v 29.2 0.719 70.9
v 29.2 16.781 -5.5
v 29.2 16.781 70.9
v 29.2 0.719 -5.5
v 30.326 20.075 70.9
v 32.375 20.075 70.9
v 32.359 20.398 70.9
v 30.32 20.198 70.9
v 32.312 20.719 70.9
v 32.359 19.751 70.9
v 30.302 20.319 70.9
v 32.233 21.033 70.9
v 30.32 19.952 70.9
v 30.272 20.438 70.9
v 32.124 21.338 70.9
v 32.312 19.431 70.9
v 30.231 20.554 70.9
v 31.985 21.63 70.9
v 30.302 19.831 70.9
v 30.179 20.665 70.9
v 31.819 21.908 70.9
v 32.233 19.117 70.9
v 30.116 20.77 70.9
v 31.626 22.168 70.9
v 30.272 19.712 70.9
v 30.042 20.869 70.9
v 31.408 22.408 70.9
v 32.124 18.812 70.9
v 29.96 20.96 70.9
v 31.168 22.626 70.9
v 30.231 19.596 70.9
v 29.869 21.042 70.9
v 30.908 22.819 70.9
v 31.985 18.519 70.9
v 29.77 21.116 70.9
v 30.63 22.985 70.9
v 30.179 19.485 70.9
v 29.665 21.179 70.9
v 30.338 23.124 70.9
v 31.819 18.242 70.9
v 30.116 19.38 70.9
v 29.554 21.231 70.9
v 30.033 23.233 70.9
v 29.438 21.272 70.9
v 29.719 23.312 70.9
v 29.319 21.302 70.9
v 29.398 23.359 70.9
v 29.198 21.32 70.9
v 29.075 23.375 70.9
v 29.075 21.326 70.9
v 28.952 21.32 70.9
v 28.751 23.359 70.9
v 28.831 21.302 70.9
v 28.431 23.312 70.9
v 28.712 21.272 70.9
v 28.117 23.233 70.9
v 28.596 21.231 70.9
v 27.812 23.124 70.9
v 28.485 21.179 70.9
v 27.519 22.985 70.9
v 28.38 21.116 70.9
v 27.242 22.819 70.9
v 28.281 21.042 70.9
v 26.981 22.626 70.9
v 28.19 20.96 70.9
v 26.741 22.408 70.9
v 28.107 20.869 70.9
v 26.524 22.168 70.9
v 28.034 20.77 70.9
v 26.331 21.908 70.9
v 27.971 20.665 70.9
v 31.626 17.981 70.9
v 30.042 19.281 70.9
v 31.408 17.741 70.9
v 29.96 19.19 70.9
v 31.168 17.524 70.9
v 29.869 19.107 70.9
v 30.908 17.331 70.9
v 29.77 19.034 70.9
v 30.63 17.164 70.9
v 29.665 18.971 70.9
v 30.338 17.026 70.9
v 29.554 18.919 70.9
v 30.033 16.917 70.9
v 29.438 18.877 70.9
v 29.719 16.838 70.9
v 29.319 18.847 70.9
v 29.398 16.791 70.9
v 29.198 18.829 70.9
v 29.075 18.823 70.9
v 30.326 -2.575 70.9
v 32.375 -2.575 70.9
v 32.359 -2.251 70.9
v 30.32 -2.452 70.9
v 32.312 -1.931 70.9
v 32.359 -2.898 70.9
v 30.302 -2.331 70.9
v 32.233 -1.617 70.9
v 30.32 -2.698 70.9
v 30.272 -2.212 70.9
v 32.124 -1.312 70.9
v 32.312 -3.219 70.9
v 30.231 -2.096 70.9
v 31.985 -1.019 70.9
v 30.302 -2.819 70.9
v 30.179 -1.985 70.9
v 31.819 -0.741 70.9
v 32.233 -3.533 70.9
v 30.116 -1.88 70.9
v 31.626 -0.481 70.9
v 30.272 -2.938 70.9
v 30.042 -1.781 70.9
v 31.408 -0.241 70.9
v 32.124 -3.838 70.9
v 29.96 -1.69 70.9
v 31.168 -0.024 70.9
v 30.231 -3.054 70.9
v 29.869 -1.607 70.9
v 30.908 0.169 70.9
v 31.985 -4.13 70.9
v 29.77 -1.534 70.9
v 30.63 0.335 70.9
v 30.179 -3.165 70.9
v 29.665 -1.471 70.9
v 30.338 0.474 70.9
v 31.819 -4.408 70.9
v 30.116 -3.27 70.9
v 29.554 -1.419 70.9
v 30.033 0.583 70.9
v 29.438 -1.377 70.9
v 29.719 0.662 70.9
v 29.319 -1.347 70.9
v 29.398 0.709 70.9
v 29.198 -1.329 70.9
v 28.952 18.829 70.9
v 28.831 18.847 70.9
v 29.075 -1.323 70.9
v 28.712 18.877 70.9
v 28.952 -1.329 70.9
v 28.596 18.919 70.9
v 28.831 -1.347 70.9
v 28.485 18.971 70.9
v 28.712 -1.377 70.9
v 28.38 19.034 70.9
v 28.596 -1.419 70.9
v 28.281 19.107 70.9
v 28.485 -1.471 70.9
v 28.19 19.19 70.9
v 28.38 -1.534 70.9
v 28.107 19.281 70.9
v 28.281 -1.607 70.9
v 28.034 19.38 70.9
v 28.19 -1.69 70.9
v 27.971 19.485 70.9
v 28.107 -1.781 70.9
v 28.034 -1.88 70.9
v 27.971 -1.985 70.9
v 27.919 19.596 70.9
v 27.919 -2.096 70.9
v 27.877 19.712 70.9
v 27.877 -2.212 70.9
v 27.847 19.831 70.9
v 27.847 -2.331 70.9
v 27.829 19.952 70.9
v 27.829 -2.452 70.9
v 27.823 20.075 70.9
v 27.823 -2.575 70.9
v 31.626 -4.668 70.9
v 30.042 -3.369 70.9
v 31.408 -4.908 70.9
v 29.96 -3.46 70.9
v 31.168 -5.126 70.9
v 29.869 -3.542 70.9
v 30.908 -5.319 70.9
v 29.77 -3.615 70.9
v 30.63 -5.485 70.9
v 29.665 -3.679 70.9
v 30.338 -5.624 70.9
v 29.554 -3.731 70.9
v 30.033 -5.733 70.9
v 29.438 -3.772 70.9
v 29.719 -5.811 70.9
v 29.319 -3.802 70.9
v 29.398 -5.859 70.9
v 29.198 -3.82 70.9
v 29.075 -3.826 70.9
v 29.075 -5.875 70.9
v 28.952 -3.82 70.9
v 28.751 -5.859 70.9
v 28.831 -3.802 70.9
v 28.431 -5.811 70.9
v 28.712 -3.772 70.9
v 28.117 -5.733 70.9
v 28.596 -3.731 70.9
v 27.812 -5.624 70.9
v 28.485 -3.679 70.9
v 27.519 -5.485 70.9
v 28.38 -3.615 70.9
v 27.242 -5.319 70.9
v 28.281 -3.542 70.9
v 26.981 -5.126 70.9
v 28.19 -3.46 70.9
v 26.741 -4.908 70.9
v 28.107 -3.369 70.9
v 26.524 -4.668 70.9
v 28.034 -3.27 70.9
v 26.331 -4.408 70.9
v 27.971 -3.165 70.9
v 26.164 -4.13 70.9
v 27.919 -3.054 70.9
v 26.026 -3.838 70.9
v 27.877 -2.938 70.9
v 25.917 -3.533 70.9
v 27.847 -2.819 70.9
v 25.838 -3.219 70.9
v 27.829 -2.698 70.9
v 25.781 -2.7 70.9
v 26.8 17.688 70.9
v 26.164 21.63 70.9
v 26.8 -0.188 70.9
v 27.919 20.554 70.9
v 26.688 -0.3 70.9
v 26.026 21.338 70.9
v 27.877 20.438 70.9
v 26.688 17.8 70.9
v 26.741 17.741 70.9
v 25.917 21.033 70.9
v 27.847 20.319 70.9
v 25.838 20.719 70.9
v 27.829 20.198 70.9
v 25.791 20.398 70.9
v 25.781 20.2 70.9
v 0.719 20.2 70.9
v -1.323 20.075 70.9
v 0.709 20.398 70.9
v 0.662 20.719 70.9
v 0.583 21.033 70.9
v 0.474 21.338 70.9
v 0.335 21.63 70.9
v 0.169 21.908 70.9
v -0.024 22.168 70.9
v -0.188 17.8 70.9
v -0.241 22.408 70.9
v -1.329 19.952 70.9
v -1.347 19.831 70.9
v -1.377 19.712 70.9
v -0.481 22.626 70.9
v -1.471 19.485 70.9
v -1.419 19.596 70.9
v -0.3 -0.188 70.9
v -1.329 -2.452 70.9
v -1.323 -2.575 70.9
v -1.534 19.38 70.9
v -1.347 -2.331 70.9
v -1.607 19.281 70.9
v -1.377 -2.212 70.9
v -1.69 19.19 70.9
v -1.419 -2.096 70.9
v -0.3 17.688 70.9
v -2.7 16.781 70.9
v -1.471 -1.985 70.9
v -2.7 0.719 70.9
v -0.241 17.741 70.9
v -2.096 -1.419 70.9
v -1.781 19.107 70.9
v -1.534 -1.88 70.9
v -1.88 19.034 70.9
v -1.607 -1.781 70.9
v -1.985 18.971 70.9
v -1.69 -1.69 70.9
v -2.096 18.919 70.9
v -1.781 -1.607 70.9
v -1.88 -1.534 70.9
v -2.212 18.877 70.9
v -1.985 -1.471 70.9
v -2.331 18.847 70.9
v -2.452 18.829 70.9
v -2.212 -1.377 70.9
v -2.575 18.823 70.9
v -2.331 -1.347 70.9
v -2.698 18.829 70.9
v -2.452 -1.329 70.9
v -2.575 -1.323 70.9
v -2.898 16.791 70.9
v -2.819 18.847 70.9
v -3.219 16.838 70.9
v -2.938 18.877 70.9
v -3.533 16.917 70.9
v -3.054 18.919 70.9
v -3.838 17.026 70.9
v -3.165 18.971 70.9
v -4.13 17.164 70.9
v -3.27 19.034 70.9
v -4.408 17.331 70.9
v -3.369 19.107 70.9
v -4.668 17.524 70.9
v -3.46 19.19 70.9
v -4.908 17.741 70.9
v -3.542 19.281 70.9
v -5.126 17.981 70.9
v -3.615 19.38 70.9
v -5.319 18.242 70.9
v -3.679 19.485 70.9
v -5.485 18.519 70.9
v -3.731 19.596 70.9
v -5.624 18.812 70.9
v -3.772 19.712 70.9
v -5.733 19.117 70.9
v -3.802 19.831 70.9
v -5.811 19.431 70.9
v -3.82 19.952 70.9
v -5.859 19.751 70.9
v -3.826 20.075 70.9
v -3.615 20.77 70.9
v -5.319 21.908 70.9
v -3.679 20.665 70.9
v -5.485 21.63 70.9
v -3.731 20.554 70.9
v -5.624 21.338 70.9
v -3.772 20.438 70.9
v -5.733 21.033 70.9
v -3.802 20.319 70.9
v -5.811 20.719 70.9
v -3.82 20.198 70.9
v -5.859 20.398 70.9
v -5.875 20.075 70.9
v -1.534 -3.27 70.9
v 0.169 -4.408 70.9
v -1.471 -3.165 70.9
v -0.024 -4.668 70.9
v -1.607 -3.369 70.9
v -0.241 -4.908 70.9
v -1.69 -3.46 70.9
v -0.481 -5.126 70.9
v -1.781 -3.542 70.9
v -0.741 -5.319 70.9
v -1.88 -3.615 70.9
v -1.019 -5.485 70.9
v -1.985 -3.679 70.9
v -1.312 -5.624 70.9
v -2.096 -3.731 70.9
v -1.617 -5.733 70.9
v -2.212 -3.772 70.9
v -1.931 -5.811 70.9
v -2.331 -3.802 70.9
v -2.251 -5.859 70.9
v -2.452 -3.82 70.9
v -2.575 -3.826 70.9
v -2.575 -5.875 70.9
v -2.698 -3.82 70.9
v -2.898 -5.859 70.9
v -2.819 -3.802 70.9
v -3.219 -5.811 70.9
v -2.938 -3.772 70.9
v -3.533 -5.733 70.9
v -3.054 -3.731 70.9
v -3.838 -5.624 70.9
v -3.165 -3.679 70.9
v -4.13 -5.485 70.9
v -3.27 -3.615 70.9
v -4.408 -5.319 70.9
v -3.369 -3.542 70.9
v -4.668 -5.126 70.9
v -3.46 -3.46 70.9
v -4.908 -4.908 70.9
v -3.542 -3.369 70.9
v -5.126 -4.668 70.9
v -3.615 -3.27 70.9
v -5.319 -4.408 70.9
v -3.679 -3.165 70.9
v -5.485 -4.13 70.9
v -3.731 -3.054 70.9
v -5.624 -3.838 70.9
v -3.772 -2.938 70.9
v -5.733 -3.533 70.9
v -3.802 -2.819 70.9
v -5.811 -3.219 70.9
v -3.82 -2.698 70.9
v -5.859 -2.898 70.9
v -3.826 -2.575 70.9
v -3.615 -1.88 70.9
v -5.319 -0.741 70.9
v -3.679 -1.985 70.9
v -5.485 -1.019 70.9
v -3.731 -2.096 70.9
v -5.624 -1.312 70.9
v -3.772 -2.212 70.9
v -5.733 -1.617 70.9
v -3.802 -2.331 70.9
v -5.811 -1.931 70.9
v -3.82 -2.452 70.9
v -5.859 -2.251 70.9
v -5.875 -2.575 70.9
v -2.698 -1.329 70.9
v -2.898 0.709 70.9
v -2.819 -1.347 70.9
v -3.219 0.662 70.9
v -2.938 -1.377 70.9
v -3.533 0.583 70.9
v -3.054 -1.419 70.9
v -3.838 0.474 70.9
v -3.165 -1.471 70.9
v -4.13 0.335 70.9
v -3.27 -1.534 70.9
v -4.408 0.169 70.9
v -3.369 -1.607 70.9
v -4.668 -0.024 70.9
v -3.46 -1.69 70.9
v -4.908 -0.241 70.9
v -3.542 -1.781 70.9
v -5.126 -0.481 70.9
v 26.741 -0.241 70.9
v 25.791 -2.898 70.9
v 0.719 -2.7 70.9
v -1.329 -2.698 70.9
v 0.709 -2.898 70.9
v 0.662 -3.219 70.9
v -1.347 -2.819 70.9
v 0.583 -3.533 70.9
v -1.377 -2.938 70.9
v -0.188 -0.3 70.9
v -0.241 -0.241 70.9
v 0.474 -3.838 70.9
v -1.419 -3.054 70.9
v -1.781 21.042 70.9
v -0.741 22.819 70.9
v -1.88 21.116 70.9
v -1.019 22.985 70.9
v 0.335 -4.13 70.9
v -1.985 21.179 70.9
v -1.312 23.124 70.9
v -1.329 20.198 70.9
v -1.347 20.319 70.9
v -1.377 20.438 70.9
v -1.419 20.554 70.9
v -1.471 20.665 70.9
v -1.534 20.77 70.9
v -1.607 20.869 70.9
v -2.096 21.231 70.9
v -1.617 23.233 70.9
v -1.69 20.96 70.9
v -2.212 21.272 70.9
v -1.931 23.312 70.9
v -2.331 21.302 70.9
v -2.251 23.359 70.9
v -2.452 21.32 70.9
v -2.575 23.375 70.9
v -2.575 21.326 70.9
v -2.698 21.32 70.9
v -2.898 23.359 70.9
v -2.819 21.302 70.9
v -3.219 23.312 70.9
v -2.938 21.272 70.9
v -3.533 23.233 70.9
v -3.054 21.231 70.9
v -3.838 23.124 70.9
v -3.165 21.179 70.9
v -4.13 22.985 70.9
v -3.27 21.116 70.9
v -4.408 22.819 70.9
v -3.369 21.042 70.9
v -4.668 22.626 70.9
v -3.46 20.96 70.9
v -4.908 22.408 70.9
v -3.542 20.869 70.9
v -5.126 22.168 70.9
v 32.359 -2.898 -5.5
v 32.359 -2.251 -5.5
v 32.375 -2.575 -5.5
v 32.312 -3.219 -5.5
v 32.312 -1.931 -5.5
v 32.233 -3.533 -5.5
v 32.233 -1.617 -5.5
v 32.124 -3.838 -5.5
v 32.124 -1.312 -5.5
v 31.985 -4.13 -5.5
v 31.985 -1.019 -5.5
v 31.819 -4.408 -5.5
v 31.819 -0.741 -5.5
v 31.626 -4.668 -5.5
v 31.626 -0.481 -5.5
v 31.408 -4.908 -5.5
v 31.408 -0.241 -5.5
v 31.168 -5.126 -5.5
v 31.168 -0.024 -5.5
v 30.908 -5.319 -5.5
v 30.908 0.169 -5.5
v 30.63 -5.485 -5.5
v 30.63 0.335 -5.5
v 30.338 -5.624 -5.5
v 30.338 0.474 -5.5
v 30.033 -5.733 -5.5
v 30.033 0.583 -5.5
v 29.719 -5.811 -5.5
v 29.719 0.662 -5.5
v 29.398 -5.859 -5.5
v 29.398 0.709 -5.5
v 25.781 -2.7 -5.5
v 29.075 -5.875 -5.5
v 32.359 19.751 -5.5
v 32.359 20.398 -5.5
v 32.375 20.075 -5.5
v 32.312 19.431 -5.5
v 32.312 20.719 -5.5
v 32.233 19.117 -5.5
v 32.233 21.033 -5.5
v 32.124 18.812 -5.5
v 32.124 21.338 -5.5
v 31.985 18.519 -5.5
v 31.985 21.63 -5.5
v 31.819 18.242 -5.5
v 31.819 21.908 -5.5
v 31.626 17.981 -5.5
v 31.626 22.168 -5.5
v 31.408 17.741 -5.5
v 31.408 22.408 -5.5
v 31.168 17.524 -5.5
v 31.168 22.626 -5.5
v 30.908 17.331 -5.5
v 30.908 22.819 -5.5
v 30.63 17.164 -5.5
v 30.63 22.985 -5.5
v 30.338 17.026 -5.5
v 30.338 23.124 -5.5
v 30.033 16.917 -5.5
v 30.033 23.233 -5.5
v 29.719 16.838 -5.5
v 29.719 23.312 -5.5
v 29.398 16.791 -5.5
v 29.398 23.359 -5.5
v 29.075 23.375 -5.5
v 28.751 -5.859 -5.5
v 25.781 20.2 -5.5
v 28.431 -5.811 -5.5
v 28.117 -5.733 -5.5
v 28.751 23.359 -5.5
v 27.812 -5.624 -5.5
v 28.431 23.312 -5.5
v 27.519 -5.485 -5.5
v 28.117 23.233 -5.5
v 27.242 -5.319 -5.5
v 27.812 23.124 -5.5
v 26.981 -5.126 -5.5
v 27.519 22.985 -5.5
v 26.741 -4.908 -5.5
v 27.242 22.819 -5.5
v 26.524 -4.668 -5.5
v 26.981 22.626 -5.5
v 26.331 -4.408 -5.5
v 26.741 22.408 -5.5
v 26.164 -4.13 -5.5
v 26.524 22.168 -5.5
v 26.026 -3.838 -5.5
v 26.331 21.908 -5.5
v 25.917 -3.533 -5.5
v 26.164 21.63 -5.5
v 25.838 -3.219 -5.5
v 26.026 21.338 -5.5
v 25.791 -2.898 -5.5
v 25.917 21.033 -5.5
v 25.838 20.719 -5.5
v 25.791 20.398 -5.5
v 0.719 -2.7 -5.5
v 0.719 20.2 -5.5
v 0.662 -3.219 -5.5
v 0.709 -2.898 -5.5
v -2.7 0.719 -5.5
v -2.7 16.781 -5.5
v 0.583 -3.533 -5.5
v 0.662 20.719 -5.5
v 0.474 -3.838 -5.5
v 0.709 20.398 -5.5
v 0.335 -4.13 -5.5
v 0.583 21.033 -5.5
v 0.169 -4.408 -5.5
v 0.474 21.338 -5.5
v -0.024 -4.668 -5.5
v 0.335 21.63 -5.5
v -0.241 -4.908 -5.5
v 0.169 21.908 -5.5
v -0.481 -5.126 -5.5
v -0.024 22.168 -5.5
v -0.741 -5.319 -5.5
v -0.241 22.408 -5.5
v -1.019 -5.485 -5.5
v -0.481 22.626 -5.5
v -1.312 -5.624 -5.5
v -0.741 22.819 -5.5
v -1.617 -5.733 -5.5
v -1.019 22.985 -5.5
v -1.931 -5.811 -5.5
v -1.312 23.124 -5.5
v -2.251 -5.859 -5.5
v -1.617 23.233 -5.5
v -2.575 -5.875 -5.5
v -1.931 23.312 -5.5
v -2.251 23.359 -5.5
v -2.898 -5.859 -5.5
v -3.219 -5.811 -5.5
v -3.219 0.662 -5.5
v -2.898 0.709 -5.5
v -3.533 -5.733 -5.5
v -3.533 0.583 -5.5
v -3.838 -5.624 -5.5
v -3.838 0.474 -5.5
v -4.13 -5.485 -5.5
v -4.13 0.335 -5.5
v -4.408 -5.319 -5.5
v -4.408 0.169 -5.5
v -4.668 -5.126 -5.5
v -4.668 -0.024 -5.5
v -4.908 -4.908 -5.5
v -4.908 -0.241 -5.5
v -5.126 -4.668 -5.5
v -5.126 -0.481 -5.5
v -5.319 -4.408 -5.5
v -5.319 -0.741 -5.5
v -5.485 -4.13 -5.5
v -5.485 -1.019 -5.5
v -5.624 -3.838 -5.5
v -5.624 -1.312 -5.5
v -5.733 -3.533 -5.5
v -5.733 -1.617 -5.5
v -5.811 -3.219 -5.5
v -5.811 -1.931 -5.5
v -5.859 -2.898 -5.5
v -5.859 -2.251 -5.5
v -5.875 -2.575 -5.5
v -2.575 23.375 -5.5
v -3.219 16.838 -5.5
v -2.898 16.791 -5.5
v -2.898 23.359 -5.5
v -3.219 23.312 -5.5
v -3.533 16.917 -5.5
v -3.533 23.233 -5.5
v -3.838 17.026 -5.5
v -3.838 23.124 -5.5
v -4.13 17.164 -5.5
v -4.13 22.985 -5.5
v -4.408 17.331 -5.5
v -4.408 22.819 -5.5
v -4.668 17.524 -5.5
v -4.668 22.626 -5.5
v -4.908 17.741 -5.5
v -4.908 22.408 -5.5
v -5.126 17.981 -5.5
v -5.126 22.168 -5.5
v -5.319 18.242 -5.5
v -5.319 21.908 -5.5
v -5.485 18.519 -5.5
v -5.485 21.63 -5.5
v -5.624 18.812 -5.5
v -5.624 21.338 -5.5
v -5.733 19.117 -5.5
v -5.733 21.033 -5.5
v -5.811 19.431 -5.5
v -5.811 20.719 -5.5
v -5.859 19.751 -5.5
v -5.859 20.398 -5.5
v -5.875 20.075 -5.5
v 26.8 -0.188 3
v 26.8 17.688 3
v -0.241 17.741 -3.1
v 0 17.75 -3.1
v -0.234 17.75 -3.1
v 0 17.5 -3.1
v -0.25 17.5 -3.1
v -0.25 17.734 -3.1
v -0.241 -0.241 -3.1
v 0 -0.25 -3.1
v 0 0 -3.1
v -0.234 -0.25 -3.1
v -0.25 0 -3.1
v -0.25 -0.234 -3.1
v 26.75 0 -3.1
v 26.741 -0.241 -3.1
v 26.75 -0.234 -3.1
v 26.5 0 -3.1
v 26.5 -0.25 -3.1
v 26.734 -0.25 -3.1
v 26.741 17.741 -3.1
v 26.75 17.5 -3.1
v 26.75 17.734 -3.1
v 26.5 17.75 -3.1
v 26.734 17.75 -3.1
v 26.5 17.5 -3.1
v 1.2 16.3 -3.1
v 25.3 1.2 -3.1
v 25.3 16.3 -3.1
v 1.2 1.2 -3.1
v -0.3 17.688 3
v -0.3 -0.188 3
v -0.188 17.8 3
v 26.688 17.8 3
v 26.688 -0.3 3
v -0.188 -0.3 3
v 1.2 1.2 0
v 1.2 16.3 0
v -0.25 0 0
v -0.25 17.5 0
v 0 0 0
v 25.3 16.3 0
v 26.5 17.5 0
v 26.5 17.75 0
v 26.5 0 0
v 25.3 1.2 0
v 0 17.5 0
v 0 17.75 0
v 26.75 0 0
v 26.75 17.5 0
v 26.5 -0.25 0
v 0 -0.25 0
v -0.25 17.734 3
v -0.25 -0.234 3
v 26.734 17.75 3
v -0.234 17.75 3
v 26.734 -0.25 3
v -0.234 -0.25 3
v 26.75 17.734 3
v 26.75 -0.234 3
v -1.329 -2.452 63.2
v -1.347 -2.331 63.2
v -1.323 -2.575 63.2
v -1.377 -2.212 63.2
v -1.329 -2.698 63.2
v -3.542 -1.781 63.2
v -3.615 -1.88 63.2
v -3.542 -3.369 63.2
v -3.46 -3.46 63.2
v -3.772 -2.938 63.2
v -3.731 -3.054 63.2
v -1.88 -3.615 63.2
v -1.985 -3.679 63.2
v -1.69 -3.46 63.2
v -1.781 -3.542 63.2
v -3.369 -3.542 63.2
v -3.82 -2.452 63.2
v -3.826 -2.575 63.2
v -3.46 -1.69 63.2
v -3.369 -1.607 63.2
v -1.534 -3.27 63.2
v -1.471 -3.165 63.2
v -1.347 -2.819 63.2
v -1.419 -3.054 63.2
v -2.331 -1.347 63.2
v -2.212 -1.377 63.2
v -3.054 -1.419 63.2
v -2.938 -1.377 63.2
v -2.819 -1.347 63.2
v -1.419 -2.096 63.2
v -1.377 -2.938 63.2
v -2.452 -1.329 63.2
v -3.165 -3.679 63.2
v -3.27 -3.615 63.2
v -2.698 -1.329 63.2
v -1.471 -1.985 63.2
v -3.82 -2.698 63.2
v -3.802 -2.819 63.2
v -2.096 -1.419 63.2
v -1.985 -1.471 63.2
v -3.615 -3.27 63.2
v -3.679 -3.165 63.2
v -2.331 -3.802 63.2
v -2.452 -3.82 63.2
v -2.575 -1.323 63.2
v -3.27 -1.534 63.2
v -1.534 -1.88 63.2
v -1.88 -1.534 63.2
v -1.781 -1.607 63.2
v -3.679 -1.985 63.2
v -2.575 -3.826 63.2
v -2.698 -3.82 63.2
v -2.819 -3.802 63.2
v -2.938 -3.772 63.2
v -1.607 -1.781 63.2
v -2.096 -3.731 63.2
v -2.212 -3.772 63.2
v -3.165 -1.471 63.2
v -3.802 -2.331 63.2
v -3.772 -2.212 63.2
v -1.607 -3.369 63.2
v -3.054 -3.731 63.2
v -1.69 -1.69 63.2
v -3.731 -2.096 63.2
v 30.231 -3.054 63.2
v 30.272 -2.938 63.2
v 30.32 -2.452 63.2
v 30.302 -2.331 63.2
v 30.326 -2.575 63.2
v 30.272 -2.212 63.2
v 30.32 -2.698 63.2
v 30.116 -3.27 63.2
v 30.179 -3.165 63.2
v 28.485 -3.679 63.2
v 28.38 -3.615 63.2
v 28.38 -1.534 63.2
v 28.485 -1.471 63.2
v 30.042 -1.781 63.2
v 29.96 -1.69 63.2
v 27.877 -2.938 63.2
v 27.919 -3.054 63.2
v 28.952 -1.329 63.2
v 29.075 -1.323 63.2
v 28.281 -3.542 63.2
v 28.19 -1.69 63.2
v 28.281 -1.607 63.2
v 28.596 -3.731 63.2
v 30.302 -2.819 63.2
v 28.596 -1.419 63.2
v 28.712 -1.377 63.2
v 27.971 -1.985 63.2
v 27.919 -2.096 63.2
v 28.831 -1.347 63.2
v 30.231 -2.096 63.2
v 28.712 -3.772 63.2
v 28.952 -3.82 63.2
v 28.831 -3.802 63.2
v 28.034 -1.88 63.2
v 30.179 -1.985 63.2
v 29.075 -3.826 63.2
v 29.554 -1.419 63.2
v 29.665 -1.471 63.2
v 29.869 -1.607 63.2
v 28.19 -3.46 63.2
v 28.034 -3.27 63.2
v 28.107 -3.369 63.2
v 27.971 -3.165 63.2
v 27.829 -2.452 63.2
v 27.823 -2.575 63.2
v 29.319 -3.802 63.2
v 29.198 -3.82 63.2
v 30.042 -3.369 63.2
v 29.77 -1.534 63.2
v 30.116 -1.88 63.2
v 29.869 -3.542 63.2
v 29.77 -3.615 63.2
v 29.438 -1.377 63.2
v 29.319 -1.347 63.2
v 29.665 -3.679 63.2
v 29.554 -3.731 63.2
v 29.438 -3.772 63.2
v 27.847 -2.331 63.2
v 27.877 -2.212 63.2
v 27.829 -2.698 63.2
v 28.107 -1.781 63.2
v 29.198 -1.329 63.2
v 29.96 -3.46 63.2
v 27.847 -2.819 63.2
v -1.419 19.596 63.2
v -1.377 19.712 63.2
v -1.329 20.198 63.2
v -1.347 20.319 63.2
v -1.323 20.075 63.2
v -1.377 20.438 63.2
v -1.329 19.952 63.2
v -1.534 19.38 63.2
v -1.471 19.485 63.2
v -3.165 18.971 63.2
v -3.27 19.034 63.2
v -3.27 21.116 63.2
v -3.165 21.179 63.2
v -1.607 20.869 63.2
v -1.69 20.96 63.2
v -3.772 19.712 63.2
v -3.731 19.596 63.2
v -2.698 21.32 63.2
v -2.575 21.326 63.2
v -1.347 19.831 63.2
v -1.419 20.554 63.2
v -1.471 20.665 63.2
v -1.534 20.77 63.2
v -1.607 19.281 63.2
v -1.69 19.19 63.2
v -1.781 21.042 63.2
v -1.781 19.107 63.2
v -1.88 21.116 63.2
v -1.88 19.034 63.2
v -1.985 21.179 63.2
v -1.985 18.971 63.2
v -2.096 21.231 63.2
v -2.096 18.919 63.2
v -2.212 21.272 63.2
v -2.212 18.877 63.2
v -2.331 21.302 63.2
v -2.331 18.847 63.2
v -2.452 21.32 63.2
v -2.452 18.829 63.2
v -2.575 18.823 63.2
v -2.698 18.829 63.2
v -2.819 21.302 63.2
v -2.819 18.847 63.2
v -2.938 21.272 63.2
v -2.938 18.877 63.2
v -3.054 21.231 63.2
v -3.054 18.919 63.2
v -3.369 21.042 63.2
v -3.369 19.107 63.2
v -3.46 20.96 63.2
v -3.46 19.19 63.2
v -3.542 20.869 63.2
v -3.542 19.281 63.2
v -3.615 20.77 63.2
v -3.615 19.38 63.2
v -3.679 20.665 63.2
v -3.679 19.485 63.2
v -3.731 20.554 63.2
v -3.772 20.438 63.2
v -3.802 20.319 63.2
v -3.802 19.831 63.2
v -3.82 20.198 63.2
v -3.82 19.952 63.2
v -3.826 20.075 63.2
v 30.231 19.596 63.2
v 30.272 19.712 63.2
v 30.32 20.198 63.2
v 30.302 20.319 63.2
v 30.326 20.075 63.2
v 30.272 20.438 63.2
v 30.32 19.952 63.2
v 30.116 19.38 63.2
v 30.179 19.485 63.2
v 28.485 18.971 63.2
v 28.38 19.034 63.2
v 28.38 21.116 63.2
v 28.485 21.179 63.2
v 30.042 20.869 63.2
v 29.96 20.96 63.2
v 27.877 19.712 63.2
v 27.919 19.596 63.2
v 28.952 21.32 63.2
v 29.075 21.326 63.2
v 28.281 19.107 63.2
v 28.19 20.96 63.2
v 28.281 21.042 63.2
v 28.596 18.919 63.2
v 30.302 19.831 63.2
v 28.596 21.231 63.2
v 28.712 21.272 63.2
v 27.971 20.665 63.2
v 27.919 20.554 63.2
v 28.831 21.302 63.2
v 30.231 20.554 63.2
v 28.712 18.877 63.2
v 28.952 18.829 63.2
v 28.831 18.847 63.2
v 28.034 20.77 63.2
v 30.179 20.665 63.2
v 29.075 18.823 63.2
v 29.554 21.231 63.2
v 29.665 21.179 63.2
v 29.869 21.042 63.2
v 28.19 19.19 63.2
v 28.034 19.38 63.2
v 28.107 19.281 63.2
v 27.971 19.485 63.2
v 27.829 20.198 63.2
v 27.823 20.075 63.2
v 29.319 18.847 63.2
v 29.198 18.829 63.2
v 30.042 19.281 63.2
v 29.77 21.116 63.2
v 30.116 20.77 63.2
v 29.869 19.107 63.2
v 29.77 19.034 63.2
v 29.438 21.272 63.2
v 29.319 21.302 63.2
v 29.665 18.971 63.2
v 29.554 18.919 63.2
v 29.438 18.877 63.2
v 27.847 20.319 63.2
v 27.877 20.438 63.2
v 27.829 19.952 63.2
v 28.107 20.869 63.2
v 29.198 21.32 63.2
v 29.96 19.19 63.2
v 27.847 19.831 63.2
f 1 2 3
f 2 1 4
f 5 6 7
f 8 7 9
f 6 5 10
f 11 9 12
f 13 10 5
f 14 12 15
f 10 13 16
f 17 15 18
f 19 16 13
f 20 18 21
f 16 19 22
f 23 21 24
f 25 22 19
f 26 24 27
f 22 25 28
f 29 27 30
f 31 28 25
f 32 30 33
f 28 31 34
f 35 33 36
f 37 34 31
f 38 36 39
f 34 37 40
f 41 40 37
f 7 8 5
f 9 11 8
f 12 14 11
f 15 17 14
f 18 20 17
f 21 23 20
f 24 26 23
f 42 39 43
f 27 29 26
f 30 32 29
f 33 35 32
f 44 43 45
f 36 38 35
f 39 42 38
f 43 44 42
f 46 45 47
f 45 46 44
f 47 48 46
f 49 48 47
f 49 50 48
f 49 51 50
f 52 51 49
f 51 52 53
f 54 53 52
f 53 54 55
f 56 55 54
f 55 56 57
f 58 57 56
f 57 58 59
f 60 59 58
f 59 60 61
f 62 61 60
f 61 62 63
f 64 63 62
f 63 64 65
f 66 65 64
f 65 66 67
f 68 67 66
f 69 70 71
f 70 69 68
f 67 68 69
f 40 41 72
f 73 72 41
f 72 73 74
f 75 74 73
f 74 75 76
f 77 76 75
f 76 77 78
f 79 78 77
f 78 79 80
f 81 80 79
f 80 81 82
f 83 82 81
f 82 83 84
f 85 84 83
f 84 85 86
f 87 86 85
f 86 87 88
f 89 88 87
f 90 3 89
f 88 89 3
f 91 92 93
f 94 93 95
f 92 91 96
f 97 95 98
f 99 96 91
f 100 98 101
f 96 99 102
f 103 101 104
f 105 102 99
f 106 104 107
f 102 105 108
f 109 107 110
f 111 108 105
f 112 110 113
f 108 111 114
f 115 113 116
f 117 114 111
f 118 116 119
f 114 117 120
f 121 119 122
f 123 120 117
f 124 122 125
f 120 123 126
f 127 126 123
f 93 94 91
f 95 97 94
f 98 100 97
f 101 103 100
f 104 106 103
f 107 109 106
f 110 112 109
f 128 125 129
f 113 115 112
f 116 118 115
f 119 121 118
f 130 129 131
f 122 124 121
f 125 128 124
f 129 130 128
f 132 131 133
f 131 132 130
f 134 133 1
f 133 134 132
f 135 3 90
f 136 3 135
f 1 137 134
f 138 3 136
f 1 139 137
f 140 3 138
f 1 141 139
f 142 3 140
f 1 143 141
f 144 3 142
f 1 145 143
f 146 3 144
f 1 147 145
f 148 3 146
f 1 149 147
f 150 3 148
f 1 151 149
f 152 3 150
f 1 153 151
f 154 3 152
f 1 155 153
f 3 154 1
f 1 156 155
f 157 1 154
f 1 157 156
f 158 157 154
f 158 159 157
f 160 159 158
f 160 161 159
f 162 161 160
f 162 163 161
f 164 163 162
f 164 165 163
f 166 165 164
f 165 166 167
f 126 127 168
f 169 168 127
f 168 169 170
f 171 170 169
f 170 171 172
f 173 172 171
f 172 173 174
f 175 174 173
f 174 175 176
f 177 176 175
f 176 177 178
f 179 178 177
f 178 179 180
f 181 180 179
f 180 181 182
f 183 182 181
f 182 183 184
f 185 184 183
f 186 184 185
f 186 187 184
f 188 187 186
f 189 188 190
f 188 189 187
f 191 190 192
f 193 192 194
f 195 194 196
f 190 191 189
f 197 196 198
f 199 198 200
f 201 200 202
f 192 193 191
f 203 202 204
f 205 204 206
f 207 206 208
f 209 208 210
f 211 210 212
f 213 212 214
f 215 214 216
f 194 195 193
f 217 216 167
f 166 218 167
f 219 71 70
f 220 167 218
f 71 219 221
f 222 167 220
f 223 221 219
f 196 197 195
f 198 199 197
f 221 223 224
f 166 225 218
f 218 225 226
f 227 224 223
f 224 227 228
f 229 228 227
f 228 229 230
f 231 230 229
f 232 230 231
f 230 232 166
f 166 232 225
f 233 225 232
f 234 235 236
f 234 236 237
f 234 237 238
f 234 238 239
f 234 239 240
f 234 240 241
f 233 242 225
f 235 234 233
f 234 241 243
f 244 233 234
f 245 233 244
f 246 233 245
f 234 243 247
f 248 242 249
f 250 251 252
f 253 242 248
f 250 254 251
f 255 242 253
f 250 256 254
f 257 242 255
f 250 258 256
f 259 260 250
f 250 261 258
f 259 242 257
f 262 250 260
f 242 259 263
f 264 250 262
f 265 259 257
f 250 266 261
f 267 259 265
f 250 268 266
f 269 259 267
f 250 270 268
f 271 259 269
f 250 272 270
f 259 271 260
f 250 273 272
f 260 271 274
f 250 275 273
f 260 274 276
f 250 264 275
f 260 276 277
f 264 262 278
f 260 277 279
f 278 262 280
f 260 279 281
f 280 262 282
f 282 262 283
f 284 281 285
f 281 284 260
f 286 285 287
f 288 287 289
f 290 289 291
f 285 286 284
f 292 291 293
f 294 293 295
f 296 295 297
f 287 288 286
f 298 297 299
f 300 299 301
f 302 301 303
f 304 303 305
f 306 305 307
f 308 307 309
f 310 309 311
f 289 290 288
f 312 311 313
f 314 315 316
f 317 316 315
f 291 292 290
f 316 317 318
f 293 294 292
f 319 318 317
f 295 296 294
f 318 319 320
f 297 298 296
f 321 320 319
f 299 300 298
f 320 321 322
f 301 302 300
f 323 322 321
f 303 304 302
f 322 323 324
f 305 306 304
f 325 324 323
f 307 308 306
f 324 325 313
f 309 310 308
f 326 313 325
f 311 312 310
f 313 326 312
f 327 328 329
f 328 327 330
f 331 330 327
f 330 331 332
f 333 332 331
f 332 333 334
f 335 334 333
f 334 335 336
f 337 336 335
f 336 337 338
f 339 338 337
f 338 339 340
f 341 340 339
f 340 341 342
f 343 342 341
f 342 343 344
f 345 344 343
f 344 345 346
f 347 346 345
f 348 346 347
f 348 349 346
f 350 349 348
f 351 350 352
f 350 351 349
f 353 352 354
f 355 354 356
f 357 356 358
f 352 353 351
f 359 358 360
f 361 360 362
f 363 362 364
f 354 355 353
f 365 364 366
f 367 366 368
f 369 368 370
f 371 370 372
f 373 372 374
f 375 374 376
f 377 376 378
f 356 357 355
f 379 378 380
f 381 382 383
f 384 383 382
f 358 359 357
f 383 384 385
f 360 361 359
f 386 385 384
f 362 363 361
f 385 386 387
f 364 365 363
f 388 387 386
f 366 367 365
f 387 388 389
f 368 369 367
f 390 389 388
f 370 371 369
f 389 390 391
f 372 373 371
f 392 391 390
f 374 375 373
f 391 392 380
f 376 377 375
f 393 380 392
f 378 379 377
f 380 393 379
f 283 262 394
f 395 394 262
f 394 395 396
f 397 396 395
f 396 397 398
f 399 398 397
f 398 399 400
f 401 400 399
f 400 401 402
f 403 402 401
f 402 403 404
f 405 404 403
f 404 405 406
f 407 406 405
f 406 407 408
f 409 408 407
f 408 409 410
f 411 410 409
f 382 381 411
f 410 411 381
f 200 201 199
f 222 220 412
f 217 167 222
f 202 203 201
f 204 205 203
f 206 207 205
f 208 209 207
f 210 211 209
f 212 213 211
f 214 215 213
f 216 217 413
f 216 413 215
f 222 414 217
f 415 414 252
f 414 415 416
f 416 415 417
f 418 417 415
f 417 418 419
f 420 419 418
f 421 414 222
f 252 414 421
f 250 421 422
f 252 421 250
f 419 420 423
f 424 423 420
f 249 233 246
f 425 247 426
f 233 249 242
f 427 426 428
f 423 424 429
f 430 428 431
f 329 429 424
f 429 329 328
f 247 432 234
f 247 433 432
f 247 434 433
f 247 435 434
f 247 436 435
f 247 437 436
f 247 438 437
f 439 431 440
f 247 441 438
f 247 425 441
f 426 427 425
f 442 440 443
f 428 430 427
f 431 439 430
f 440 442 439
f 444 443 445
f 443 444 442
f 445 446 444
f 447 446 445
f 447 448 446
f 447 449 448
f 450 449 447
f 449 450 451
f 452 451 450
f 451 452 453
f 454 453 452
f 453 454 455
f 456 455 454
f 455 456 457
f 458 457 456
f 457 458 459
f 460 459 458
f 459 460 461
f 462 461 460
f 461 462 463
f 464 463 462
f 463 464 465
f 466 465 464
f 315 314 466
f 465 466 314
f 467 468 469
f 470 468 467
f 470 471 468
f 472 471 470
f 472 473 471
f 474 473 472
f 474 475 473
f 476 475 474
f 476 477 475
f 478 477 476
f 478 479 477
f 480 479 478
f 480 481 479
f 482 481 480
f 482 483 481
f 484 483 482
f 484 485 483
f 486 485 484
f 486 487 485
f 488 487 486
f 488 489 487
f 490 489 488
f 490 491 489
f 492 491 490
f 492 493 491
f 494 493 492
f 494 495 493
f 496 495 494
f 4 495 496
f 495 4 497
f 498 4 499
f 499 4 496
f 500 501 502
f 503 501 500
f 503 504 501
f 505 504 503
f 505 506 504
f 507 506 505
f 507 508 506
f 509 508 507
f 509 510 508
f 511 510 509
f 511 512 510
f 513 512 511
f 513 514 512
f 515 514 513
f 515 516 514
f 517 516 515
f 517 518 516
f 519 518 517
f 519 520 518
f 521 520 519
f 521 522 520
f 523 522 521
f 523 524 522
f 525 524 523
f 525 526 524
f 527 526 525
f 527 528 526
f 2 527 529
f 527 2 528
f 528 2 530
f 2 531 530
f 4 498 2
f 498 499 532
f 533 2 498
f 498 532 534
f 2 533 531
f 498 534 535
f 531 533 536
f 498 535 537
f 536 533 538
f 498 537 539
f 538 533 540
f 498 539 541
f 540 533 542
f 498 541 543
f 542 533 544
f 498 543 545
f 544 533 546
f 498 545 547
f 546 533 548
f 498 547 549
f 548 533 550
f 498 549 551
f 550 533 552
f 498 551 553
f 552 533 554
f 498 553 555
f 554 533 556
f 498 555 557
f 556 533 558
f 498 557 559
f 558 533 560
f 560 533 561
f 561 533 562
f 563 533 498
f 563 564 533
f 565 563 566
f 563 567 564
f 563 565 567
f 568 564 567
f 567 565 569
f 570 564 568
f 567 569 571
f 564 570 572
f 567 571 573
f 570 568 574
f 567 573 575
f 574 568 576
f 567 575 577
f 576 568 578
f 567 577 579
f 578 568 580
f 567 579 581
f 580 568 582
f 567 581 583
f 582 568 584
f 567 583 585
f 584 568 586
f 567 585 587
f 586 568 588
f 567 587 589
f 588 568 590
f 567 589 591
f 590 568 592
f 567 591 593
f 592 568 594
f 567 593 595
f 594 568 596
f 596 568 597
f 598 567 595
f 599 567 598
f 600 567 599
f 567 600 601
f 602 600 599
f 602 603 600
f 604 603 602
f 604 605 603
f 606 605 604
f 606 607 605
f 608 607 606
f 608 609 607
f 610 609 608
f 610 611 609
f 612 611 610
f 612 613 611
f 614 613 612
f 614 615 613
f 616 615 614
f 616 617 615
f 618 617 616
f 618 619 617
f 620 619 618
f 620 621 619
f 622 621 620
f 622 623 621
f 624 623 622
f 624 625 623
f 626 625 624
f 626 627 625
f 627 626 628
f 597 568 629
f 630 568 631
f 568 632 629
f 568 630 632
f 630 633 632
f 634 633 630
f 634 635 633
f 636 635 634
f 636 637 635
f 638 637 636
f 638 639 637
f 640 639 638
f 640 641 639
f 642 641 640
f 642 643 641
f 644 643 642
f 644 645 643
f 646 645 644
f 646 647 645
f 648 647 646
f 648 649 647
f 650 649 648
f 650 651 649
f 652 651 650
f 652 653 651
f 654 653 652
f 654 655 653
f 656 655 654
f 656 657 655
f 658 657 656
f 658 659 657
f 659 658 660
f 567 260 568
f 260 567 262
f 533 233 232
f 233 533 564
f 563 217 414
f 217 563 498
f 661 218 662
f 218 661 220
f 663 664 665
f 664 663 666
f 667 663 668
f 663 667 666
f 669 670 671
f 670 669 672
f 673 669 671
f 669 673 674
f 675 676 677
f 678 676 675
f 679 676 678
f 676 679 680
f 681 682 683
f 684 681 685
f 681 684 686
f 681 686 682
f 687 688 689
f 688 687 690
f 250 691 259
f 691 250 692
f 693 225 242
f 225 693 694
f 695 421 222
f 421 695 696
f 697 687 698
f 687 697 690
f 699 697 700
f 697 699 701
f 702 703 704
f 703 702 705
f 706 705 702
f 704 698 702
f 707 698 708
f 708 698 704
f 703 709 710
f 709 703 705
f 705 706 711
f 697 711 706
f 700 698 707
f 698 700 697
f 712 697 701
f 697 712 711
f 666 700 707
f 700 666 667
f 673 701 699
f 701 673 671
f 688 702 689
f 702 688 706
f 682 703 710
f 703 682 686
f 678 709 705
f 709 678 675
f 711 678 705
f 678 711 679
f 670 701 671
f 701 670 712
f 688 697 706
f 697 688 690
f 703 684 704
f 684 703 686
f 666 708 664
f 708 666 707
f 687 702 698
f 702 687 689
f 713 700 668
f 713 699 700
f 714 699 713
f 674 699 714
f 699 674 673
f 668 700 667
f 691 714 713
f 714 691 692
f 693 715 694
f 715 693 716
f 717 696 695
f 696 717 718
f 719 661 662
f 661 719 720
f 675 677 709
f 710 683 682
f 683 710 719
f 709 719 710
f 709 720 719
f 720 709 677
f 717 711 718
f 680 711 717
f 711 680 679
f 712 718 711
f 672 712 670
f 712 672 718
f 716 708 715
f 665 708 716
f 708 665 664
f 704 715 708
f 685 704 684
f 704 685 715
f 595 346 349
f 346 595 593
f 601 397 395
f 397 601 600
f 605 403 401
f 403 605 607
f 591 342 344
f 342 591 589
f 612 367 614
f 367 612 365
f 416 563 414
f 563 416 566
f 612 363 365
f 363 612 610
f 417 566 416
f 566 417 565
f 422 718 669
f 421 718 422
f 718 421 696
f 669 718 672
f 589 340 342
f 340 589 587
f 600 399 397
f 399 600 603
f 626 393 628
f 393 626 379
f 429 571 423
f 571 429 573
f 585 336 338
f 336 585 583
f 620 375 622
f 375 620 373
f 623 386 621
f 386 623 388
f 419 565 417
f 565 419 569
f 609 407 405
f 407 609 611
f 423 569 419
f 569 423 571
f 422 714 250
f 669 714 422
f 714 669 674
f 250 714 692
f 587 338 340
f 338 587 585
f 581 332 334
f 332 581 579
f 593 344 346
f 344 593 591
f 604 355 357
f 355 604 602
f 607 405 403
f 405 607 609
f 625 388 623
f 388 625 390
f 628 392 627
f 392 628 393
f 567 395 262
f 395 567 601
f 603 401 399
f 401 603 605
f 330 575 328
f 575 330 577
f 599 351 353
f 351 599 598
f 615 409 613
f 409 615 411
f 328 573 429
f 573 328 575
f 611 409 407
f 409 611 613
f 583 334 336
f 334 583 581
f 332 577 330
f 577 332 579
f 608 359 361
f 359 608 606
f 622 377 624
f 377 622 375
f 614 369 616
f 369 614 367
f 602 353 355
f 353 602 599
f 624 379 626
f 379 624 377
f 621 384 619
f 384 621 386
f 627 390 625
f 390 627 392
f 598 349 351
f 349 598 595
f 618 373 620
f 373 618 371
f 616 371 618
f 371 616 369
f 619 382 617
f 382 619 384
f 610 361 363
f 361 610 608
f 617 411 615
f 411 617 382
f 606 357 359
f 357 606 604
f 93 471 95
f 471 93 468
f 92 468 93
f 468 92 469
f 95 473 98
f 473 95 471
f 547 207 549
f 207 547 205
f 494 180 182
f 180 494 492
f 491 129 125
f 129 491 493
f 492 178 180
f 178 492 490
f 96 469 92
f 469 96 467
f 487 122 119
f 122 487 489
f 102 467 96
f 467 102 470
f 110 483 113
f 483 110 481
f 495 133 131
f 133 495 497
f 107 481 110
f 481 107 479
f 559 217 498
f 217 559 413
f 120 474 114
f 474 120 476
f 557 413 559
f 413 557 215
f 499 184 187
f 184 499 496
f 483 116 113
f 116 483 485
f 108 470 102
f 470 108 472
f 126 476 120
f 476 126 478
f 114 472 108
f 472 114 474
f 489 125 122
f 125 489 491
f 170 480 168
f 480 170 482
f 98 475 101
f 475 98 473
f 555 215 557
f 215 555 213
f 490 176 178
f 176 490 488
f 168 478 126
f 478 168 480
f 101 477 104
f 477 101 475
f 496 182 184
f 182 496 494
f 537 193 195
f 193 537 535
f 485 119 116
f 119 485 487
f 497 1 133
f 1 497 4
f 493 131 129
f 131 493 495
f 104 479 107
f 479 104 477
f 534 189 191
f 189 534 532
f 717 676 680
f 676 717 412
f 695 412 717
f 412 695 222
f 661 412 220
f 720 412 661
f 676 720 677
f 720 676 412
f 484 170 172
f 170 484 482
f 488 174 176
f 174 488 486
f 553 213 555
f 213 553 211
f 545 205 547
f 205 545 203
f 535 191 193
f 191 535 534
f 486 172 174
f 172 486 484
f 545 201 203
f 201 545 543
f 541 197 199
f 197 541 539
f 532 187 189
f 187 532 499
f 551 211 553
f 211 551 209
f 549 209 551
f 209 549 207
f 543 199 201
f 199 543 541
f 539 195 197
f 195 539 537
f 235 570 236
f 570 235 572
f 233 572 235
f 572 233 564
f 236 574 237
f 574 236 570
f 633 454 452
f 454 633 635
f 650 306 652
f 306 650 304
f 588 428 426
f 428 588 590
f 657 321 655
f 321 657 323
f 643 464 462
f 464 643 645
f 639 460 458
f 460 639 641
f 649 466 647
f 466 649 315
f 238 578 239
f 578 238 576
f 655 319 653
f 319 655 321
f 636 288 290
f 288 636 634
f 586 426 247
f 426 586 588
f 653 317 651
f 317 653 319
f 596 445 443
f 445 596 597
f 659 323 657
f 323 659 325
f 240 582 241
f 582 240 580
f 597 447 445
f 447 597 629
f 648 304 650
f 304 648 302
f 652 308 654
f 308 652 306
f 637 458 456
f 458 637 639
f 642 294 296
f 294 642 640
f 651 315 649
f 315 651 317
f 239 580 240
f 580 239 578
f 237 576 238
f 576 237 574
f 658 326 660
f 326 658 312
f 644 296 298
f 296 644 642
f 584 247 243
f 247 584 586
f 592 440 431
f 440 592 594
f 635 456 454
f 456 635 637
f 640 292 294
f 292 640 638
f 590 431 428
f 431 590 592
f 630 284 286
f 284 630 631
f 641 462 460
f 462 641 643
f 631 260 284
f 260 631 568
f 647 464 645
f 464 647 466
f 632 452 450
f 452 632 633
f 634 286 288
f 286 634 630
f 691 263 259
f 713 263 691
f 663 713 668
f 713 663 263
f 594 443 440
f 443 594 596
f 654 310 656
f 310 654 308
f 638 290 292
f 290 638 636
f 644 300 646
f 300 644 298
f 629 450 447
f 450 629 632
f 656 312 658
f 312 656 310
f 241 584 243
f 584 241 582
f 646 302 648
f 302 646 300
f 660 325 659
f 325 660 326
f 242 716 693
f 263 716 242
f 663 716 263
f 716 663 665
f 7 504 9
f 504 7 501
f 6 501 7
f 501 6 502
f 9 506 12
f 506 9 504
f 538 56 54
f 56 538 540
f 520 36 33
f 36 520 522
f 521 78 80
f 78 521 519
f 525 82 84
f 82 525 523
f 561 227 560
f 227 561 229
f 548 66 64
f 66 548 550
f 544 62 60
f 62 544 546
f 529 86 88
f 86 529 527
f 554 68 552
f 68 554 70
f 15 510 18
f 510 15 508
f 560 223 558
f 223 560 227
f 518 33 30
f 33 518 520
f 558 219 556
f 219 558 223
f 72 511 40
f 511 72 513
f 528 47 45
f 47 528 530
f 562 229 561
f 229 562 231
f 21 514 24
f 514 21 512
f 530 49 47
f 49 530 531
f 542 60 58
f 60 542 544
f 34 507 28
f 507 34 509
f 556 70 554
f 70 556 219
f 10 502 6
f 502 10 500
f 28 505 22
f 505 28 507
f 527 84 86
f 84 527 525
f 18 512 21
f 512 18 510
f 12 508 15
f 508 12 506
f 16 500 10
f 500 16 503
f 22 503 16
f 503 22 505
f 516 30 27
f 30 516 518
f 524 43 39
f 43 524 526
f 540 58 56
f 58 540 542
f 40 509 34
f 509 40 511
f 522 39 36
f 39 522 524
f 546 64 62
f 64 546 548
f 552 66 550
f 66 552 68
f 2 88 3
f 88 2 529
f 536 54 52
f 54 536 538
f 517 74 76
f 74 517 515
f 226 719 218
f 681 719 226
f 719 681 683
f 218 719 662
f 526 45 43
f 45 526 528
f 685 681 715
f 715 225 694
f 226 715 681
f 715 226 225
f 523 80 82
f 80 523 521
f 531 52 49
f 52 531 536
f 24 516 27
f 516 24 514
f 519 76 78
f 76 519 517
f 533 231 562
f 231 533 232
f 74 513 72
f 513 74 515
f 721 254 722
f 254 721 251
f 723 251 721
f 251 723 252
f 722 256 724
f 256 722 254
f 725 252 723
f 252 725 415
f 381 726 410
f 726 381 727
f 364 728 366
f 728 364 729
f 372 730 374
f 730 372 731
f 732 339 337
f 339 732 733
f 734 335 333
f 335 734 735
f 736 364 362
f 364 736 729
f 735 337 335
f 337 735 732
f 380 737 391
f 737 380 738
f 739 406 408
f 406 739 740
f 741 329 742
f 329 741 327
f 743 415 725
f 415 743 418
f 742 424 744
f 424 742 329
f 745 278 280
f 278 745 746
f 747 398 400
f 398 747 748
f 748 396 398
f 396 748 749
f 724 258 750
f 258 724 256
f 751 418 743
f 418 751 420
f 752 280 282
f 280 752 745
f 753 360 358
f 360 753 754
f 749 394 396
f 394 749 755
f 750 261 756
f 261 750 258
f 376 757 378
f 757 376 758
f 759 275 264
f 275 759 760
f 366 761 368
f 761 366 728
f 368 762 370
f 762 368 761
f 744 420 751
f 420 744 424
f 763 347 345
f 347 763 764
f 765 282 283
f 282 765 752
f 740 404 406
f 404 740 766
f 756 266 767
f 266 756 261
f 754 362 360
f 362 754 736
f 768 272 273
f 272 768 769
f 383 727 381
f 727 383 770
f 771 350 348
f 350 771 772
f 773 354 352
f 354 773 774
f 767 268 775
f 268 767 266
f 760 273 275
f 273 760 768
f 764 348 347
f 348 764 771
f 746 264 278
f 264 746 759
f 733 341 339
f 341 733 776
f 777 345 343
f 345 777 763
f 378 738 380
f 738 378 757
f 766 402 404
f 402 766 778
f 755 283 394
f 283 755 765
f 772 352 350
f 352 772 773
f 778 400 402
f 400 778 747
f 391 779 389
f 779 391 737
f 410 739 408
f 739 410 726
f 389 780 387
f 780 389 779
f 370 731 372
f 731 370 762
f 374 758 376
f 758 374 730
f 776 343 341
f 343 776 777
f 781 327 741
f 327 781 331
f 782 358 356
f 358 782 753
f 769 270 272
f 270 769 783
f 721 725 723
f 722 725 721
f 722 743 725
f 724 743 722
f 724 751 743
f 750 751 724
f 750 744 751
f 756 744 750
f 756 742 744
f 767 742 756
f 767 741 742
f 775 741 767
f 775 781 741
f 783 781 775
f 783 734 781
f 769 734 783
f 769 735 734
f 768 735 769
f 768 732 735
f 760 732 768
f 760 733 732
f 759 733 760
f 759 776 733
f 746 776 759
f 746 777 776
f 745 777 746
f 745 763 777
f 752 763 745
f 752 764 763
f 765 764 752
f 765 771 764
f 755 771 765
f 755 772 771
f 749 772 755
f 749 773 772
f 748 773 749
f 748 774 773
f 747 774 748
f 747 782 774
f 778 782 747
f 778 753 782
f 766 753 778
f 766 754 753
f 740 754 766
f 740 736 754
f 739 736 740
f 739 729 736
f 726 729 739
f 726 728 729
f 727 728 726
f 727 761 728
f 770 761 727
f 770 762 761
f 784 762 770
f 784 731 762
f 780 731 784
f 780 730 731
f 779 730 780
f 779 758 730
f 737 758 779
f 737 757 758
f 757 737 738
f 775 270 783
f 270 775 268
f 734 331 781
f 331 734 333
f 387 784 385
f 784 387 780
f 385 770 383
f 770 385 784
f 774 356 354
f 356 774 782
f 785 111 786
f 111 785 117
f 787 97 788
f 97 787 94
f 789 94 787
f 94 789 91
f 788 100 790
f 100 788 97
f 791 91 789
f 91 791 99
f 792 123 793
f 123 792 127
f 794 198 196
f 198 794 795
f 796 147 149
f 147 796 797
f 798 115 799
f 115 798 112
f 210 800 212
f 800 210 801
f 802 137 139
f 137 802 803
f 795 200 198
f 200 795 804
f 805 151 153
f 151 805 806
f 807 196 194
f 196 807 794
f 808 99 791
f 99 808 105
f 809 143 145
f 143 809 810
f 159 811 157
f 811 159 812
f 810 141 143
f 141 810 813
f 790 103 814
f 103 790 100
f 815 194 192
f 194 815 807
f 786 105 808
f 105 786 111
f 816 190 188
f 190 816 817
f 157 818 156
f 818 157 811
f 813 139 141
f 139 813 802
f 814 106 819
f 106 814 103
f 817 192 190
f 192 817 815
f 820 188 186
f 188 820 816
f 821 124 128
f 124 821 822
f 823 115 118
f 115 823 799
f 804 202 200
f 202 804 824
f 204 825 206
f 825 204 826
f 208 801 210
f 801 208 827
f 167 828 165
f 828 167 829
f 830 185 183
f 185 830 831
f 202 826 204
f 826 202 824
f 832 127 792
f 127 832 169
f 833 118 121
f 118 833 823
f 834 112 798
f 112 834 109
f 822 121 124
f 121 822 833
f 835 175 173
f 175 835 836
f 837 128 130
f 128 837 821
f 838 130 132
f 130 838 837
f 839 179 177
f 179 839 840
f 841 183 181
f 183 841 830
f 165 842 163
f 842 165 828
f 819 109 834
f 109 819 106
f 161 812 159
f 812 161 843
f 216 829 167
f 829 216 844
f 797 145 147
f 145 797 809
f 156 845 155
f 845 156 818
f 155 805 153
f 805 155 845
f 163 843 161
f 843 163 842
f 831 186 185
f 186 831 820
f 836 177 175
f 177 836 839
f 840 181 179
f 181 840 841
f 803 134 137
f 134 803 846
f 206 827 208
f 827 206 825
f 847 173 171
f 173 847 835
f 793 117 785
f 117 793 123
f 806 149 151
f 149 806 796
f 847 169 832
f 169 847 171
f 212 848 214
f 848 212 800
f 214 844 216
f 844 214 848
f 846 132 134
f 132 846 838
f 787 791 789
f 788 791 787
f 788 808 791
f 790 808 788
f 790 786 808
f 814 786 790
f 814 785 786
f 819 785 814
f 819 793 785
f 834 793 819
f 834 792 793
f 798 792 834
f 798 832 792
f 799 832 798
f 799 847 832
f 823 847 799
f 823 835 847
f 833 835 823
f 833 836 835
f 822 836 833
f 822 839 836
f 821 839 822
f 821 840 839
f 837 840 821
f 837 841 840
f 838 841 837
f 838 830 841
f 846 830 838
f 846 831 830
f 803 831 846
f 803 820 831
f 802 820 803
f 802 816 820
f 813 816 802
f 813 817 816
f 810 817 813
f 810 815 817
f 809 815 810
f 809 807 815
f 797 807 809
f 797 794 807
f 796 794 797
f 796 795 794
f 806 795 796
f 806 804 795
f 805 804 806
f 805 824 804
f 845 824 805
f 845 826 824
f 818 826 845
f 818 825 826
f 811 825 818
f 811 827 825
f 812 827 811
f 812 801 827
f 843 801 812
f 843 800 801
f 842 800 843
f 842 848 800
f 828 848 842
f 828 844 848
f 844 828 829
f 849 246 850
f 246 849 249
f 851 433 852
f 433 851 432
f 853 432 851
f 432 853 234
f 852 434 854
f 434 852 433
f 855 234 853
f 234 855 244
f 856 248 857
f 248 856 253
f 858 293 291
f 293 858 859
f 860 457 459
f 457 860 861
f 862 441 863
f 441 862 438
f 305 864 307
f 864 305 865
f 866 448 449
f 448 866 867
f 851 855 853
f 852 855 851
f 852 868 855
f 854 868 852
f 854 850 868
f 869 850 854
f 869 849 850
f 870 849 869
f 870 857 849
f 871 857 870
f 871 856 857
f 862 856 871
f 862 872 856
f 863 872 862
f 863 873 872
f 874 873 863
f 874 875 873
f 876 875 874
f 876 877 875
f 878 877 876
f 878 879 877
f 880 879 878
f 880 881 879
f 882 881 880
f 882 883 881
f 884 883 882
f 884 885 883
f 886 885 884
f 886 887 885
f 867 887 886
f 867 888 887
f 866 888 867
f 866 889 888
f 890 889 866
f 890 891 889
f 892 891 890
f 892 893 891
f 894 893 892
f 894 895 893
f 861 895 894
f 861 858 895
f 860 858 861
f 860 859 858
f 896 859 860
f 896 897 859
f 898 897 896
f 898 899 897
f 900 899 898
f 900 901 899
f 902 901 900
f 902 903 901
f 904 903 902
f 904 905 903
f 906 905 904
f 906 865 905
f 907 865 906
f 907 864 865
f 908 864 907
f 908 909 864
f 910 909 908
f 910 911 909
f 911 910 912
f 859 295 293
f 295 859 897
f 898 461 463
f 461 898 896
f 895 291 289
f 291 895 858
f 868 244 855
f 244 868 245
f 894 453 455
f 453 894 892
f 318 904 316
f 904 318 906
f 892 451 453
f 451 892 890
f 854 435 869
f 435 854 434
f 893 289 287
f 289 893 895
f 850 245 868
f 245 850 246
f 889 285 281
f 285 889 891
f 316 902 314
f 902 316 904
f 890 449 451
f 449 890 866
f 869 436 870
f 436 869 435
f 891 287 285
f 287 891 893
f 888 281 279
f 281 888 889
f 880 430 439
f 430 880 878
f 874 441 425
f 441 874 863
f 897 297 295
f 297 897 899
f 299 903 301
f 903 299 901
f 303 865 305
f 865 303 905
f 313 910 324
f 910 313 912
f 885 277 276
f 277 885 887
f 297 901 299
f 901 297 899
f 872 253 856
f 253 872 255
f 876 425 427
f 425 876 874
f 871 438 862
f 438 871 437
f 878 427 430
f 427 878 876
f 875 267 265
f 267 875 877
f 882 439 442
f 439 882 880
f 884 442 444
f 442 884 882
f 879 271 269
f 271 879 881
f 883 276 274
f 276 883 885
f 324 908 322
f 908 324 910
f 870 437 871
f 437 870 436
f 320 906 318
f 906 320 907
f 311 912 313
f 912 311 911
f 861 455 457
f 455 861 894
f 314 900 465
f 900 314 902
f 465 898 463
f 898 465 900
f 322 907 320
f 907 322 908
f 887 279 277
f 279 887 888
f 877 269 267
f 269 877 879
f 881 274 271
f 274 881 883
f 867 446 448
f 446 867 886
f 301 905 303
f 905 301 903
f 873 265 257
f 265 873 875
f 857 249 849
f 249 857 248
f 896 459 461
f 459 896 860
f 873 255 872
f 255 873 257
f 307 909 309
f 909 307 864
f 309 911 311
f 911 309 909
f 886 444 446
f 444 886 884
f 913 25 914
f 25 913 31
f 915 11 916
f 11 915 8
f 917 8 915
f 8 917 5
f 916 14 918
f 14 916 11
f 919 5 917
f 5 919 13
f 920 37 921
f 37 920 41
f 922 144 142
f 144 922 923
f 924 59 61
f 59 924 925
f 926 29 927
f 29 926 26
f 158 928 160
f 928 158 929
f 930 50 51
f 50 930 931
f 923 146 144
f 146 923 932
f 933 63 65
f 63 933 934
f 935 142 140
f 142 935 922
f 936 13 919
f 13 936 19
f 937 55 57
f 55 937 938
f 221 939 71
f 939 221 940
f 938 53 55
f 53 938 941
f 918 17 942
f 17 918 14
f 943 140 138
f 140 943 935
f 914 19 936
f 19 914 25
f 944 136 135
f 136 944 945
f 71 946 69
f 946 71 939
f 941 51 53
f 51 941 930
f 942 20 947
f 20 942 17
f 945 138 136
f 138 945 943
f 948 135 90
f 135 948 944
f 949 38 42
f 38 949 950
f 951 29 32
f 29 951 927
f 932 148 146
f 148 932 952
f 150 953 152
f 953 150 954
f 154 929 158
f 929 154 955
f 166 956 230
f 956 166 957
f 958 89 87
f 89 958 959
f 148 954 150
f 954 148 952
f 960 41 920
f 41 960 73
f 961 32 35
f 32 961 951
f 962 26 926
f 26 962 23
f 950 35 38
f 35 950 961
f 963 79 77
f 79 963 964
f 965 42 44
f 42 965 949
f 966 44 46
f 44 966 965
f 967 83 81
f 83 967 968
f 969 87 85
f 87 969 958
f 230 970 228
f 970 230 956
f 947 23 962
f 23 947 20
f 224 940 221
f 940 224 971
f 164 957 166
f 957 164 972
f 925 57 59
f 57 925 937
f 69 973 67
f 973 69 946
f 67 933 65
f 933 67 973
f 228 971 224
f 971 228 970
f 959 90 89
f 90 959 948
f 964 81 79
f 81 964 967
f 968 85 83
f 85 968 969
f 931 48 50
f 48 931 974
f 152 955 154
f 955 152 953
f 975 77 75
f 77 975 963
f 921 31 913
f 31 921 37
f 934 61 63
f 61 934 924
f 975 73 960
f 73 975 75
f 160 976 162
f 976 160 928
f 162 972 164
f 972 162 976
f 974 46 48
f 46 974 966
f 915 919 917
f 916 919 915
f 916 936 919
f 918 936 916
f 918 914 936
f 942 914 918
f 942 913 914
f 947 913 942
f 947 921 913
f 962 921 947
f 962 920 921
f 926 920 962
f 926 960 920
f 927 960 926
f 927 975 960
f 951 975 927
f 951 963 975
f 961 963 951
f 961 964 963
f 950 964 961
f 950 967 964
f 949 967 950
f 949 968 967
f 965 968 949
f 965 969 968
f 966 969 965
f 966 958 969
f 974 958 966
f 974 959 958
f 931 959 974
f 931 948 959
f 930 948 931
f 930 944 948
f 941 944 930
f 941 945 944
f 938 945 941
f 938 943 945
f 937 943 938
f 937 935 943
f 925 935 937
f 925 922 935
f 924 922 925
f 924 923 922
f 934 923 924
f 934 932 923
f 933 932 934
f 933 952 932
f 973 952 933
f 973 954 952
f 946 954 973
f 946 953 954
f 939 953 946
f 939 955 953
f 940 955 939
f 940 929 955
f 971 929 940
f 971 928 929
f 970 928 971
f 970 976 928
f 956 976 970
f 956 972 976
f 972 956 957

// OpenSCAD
// body base
difference() {
  union() {
    // body base (tray)
    multmatrix([[1, 0, 0, 13.25], [0, 1, 0, 8.75], [0, 0, 1, -5.5], [0, 0, 0, 1]]) difference() { translate([-15.95, -11.45, 0]) cube([31.9, 22.9, 76.4]); translate([0, 0, 2.4]) translate([-13.55, -9.05, 0]) cube([27.1, 18.1, 75]); }
    // add cradle_support_xm_1 (support)
    multmatrix([[1, 0, 0, -0.125], [0, 1, 0, 8.75], [0, 0, 1, -5.5], [0, 0, 0, 1]]) translate([-1.325, -8.75, 0]) cube([2.65, 17.5, 5.5]);
    // add cradle_support_xp_1 (support)
    multmatrix([[1, 0, 0, 26.625], [0, 1, 0, 8.75], [0, 0, 1, -5.5], [0, 0, 0, 1]]) translate([-1.325, -8.75, 0]) cube([2.65, 17.5, 5.5]);
    // add cradle_support_ym_1 (support)
    multmatrix([[1, 0, 0, 13.25], [0, 1, 0, -0.125], [0, 0, 1, -5.5], [0, 0, 0, 1]]) translate([-13.25, -1.325, 0]) cube([26.5, 2.65, 5.5]);
    // add cradle_support_yp_1 (support)
    multmatrix([[1, 0, 0, 13.25], [0, 1, 0, 17.625], [0, 0, 1, -5.5], [0, 0, 0, 1]]) translate([-13.25, -1.325, 0]) cube([26.5, 2.65, 5.5]);
    // add cradle_rim_xm_1 (rim)
    multmatrix([[1, 0, 0, -0.85], [0, 1, 0, 8.75], [0, 0, 1, -5.5], [0, 0, 0, 1]]) translate([-0.6, -10.2, 0]) cube([1.2, 20.4, 8.5]);
    // add cradle_rim_xp_1 (rim)
    multmatrix([[1, 0, 0, 27.35], [0, 1, 0, 8.75], [0, 0, 1, -5.5], [0, 0, 0, 1]]) translate([-0.6, -10.2, 0]) cube([1.2, 20.4, 8.5]);
    // add cradle_rim_ym_1 (rim)
    multmatrix([[1, 0, 0, 13.25], [0, 1, 0, -0.85], [0, 0, 1, -5.5], [0, 0, 0, 1]]) translate([-13.5, -0.6, 0]) cube([27, 1.2, 8.5]);
    // add cradle_rim_yp_1 (rim)
    multmatrix([[1, 0, 0, 13.25], [0, 1, 0, 18.35], [0, 0, 1, -5.5], [0, 0, 0, 1]]) translate([-13.5, -0.6, 0]) cube([27, 1.2, 8.5]);
    // add boss_1 (boss)
    multmatrix([[1, 0, 0, -2.574874], [0, 1, 0, -2.574874], [0, 0, 1, -5.5], [0, 0, 0, 1]]) cylinder(h=76.4, d=6.6, $fn=64);
    // add boss_2 (boss)
    multmatrix([[1, 0, 0, 29.074874], [0, 1, 0, -2.574874], [0, 0, 1, -5.5], [0, 0, 0, 1]]) cylinder(h=76.4, d=6.6, $fn=64);
    // add boss_3 (boss)
    multmatrix([[1, 0, 0, -2.574874], [0, 1, 0, 20.074874], [0, 0, 1, -5.5], [0, 0, 0, 1]]) cylinder(h=76.4, d=6.6, $fn=64);
    // add boss_4 (boss)
    multmatrix([[1, 0, 0, 29.074874], [0, 1, 0, 20.074874], [0, 0, 1, -5.5], [0, 0, 0, 1]]) cylinder(h=76.4, d=6.6, $fn=64);
  }
  // cut boss_1_pilot (pilot)
  multmatrix([[1, 0, 0, -2.574874], [0, 1, 0, -2.574874], [0, 0, 1, 63.2], [0, 0, 0, 1]]) cylinder(h=8.7, d=2.503015, $fn=64);
  // cut boss_2_pilot (pilot)
  multmatrix([[1, 0, 0, 29.074874], [0, 1, 0, -2.574874], [0, 0, 1, 63.2], [0, 0, 0, 1]]) cylinder(h=8.7, d=2.503015, $fn=64);
  // cut boss_3_pilot (pilot)
  multmatrix([[1, 0, 0, -2.574874], [0, 1, 0, 20.074874], [0, 0, 1, 63.2], [0, 0, 0, 1]]) cylinder(h=8.7, d=2.503015, $fn=64);
  // cut boss_4_pilot (pilot)
  multmatrix([[1, 0, 0, 29.074874], [0, 1, 0, 20.074874], [0, 0, 1, 63.2], [0, 0, 0, 1]]) cylinder(h=8.7, d=2.503015, $fn=64);
}
